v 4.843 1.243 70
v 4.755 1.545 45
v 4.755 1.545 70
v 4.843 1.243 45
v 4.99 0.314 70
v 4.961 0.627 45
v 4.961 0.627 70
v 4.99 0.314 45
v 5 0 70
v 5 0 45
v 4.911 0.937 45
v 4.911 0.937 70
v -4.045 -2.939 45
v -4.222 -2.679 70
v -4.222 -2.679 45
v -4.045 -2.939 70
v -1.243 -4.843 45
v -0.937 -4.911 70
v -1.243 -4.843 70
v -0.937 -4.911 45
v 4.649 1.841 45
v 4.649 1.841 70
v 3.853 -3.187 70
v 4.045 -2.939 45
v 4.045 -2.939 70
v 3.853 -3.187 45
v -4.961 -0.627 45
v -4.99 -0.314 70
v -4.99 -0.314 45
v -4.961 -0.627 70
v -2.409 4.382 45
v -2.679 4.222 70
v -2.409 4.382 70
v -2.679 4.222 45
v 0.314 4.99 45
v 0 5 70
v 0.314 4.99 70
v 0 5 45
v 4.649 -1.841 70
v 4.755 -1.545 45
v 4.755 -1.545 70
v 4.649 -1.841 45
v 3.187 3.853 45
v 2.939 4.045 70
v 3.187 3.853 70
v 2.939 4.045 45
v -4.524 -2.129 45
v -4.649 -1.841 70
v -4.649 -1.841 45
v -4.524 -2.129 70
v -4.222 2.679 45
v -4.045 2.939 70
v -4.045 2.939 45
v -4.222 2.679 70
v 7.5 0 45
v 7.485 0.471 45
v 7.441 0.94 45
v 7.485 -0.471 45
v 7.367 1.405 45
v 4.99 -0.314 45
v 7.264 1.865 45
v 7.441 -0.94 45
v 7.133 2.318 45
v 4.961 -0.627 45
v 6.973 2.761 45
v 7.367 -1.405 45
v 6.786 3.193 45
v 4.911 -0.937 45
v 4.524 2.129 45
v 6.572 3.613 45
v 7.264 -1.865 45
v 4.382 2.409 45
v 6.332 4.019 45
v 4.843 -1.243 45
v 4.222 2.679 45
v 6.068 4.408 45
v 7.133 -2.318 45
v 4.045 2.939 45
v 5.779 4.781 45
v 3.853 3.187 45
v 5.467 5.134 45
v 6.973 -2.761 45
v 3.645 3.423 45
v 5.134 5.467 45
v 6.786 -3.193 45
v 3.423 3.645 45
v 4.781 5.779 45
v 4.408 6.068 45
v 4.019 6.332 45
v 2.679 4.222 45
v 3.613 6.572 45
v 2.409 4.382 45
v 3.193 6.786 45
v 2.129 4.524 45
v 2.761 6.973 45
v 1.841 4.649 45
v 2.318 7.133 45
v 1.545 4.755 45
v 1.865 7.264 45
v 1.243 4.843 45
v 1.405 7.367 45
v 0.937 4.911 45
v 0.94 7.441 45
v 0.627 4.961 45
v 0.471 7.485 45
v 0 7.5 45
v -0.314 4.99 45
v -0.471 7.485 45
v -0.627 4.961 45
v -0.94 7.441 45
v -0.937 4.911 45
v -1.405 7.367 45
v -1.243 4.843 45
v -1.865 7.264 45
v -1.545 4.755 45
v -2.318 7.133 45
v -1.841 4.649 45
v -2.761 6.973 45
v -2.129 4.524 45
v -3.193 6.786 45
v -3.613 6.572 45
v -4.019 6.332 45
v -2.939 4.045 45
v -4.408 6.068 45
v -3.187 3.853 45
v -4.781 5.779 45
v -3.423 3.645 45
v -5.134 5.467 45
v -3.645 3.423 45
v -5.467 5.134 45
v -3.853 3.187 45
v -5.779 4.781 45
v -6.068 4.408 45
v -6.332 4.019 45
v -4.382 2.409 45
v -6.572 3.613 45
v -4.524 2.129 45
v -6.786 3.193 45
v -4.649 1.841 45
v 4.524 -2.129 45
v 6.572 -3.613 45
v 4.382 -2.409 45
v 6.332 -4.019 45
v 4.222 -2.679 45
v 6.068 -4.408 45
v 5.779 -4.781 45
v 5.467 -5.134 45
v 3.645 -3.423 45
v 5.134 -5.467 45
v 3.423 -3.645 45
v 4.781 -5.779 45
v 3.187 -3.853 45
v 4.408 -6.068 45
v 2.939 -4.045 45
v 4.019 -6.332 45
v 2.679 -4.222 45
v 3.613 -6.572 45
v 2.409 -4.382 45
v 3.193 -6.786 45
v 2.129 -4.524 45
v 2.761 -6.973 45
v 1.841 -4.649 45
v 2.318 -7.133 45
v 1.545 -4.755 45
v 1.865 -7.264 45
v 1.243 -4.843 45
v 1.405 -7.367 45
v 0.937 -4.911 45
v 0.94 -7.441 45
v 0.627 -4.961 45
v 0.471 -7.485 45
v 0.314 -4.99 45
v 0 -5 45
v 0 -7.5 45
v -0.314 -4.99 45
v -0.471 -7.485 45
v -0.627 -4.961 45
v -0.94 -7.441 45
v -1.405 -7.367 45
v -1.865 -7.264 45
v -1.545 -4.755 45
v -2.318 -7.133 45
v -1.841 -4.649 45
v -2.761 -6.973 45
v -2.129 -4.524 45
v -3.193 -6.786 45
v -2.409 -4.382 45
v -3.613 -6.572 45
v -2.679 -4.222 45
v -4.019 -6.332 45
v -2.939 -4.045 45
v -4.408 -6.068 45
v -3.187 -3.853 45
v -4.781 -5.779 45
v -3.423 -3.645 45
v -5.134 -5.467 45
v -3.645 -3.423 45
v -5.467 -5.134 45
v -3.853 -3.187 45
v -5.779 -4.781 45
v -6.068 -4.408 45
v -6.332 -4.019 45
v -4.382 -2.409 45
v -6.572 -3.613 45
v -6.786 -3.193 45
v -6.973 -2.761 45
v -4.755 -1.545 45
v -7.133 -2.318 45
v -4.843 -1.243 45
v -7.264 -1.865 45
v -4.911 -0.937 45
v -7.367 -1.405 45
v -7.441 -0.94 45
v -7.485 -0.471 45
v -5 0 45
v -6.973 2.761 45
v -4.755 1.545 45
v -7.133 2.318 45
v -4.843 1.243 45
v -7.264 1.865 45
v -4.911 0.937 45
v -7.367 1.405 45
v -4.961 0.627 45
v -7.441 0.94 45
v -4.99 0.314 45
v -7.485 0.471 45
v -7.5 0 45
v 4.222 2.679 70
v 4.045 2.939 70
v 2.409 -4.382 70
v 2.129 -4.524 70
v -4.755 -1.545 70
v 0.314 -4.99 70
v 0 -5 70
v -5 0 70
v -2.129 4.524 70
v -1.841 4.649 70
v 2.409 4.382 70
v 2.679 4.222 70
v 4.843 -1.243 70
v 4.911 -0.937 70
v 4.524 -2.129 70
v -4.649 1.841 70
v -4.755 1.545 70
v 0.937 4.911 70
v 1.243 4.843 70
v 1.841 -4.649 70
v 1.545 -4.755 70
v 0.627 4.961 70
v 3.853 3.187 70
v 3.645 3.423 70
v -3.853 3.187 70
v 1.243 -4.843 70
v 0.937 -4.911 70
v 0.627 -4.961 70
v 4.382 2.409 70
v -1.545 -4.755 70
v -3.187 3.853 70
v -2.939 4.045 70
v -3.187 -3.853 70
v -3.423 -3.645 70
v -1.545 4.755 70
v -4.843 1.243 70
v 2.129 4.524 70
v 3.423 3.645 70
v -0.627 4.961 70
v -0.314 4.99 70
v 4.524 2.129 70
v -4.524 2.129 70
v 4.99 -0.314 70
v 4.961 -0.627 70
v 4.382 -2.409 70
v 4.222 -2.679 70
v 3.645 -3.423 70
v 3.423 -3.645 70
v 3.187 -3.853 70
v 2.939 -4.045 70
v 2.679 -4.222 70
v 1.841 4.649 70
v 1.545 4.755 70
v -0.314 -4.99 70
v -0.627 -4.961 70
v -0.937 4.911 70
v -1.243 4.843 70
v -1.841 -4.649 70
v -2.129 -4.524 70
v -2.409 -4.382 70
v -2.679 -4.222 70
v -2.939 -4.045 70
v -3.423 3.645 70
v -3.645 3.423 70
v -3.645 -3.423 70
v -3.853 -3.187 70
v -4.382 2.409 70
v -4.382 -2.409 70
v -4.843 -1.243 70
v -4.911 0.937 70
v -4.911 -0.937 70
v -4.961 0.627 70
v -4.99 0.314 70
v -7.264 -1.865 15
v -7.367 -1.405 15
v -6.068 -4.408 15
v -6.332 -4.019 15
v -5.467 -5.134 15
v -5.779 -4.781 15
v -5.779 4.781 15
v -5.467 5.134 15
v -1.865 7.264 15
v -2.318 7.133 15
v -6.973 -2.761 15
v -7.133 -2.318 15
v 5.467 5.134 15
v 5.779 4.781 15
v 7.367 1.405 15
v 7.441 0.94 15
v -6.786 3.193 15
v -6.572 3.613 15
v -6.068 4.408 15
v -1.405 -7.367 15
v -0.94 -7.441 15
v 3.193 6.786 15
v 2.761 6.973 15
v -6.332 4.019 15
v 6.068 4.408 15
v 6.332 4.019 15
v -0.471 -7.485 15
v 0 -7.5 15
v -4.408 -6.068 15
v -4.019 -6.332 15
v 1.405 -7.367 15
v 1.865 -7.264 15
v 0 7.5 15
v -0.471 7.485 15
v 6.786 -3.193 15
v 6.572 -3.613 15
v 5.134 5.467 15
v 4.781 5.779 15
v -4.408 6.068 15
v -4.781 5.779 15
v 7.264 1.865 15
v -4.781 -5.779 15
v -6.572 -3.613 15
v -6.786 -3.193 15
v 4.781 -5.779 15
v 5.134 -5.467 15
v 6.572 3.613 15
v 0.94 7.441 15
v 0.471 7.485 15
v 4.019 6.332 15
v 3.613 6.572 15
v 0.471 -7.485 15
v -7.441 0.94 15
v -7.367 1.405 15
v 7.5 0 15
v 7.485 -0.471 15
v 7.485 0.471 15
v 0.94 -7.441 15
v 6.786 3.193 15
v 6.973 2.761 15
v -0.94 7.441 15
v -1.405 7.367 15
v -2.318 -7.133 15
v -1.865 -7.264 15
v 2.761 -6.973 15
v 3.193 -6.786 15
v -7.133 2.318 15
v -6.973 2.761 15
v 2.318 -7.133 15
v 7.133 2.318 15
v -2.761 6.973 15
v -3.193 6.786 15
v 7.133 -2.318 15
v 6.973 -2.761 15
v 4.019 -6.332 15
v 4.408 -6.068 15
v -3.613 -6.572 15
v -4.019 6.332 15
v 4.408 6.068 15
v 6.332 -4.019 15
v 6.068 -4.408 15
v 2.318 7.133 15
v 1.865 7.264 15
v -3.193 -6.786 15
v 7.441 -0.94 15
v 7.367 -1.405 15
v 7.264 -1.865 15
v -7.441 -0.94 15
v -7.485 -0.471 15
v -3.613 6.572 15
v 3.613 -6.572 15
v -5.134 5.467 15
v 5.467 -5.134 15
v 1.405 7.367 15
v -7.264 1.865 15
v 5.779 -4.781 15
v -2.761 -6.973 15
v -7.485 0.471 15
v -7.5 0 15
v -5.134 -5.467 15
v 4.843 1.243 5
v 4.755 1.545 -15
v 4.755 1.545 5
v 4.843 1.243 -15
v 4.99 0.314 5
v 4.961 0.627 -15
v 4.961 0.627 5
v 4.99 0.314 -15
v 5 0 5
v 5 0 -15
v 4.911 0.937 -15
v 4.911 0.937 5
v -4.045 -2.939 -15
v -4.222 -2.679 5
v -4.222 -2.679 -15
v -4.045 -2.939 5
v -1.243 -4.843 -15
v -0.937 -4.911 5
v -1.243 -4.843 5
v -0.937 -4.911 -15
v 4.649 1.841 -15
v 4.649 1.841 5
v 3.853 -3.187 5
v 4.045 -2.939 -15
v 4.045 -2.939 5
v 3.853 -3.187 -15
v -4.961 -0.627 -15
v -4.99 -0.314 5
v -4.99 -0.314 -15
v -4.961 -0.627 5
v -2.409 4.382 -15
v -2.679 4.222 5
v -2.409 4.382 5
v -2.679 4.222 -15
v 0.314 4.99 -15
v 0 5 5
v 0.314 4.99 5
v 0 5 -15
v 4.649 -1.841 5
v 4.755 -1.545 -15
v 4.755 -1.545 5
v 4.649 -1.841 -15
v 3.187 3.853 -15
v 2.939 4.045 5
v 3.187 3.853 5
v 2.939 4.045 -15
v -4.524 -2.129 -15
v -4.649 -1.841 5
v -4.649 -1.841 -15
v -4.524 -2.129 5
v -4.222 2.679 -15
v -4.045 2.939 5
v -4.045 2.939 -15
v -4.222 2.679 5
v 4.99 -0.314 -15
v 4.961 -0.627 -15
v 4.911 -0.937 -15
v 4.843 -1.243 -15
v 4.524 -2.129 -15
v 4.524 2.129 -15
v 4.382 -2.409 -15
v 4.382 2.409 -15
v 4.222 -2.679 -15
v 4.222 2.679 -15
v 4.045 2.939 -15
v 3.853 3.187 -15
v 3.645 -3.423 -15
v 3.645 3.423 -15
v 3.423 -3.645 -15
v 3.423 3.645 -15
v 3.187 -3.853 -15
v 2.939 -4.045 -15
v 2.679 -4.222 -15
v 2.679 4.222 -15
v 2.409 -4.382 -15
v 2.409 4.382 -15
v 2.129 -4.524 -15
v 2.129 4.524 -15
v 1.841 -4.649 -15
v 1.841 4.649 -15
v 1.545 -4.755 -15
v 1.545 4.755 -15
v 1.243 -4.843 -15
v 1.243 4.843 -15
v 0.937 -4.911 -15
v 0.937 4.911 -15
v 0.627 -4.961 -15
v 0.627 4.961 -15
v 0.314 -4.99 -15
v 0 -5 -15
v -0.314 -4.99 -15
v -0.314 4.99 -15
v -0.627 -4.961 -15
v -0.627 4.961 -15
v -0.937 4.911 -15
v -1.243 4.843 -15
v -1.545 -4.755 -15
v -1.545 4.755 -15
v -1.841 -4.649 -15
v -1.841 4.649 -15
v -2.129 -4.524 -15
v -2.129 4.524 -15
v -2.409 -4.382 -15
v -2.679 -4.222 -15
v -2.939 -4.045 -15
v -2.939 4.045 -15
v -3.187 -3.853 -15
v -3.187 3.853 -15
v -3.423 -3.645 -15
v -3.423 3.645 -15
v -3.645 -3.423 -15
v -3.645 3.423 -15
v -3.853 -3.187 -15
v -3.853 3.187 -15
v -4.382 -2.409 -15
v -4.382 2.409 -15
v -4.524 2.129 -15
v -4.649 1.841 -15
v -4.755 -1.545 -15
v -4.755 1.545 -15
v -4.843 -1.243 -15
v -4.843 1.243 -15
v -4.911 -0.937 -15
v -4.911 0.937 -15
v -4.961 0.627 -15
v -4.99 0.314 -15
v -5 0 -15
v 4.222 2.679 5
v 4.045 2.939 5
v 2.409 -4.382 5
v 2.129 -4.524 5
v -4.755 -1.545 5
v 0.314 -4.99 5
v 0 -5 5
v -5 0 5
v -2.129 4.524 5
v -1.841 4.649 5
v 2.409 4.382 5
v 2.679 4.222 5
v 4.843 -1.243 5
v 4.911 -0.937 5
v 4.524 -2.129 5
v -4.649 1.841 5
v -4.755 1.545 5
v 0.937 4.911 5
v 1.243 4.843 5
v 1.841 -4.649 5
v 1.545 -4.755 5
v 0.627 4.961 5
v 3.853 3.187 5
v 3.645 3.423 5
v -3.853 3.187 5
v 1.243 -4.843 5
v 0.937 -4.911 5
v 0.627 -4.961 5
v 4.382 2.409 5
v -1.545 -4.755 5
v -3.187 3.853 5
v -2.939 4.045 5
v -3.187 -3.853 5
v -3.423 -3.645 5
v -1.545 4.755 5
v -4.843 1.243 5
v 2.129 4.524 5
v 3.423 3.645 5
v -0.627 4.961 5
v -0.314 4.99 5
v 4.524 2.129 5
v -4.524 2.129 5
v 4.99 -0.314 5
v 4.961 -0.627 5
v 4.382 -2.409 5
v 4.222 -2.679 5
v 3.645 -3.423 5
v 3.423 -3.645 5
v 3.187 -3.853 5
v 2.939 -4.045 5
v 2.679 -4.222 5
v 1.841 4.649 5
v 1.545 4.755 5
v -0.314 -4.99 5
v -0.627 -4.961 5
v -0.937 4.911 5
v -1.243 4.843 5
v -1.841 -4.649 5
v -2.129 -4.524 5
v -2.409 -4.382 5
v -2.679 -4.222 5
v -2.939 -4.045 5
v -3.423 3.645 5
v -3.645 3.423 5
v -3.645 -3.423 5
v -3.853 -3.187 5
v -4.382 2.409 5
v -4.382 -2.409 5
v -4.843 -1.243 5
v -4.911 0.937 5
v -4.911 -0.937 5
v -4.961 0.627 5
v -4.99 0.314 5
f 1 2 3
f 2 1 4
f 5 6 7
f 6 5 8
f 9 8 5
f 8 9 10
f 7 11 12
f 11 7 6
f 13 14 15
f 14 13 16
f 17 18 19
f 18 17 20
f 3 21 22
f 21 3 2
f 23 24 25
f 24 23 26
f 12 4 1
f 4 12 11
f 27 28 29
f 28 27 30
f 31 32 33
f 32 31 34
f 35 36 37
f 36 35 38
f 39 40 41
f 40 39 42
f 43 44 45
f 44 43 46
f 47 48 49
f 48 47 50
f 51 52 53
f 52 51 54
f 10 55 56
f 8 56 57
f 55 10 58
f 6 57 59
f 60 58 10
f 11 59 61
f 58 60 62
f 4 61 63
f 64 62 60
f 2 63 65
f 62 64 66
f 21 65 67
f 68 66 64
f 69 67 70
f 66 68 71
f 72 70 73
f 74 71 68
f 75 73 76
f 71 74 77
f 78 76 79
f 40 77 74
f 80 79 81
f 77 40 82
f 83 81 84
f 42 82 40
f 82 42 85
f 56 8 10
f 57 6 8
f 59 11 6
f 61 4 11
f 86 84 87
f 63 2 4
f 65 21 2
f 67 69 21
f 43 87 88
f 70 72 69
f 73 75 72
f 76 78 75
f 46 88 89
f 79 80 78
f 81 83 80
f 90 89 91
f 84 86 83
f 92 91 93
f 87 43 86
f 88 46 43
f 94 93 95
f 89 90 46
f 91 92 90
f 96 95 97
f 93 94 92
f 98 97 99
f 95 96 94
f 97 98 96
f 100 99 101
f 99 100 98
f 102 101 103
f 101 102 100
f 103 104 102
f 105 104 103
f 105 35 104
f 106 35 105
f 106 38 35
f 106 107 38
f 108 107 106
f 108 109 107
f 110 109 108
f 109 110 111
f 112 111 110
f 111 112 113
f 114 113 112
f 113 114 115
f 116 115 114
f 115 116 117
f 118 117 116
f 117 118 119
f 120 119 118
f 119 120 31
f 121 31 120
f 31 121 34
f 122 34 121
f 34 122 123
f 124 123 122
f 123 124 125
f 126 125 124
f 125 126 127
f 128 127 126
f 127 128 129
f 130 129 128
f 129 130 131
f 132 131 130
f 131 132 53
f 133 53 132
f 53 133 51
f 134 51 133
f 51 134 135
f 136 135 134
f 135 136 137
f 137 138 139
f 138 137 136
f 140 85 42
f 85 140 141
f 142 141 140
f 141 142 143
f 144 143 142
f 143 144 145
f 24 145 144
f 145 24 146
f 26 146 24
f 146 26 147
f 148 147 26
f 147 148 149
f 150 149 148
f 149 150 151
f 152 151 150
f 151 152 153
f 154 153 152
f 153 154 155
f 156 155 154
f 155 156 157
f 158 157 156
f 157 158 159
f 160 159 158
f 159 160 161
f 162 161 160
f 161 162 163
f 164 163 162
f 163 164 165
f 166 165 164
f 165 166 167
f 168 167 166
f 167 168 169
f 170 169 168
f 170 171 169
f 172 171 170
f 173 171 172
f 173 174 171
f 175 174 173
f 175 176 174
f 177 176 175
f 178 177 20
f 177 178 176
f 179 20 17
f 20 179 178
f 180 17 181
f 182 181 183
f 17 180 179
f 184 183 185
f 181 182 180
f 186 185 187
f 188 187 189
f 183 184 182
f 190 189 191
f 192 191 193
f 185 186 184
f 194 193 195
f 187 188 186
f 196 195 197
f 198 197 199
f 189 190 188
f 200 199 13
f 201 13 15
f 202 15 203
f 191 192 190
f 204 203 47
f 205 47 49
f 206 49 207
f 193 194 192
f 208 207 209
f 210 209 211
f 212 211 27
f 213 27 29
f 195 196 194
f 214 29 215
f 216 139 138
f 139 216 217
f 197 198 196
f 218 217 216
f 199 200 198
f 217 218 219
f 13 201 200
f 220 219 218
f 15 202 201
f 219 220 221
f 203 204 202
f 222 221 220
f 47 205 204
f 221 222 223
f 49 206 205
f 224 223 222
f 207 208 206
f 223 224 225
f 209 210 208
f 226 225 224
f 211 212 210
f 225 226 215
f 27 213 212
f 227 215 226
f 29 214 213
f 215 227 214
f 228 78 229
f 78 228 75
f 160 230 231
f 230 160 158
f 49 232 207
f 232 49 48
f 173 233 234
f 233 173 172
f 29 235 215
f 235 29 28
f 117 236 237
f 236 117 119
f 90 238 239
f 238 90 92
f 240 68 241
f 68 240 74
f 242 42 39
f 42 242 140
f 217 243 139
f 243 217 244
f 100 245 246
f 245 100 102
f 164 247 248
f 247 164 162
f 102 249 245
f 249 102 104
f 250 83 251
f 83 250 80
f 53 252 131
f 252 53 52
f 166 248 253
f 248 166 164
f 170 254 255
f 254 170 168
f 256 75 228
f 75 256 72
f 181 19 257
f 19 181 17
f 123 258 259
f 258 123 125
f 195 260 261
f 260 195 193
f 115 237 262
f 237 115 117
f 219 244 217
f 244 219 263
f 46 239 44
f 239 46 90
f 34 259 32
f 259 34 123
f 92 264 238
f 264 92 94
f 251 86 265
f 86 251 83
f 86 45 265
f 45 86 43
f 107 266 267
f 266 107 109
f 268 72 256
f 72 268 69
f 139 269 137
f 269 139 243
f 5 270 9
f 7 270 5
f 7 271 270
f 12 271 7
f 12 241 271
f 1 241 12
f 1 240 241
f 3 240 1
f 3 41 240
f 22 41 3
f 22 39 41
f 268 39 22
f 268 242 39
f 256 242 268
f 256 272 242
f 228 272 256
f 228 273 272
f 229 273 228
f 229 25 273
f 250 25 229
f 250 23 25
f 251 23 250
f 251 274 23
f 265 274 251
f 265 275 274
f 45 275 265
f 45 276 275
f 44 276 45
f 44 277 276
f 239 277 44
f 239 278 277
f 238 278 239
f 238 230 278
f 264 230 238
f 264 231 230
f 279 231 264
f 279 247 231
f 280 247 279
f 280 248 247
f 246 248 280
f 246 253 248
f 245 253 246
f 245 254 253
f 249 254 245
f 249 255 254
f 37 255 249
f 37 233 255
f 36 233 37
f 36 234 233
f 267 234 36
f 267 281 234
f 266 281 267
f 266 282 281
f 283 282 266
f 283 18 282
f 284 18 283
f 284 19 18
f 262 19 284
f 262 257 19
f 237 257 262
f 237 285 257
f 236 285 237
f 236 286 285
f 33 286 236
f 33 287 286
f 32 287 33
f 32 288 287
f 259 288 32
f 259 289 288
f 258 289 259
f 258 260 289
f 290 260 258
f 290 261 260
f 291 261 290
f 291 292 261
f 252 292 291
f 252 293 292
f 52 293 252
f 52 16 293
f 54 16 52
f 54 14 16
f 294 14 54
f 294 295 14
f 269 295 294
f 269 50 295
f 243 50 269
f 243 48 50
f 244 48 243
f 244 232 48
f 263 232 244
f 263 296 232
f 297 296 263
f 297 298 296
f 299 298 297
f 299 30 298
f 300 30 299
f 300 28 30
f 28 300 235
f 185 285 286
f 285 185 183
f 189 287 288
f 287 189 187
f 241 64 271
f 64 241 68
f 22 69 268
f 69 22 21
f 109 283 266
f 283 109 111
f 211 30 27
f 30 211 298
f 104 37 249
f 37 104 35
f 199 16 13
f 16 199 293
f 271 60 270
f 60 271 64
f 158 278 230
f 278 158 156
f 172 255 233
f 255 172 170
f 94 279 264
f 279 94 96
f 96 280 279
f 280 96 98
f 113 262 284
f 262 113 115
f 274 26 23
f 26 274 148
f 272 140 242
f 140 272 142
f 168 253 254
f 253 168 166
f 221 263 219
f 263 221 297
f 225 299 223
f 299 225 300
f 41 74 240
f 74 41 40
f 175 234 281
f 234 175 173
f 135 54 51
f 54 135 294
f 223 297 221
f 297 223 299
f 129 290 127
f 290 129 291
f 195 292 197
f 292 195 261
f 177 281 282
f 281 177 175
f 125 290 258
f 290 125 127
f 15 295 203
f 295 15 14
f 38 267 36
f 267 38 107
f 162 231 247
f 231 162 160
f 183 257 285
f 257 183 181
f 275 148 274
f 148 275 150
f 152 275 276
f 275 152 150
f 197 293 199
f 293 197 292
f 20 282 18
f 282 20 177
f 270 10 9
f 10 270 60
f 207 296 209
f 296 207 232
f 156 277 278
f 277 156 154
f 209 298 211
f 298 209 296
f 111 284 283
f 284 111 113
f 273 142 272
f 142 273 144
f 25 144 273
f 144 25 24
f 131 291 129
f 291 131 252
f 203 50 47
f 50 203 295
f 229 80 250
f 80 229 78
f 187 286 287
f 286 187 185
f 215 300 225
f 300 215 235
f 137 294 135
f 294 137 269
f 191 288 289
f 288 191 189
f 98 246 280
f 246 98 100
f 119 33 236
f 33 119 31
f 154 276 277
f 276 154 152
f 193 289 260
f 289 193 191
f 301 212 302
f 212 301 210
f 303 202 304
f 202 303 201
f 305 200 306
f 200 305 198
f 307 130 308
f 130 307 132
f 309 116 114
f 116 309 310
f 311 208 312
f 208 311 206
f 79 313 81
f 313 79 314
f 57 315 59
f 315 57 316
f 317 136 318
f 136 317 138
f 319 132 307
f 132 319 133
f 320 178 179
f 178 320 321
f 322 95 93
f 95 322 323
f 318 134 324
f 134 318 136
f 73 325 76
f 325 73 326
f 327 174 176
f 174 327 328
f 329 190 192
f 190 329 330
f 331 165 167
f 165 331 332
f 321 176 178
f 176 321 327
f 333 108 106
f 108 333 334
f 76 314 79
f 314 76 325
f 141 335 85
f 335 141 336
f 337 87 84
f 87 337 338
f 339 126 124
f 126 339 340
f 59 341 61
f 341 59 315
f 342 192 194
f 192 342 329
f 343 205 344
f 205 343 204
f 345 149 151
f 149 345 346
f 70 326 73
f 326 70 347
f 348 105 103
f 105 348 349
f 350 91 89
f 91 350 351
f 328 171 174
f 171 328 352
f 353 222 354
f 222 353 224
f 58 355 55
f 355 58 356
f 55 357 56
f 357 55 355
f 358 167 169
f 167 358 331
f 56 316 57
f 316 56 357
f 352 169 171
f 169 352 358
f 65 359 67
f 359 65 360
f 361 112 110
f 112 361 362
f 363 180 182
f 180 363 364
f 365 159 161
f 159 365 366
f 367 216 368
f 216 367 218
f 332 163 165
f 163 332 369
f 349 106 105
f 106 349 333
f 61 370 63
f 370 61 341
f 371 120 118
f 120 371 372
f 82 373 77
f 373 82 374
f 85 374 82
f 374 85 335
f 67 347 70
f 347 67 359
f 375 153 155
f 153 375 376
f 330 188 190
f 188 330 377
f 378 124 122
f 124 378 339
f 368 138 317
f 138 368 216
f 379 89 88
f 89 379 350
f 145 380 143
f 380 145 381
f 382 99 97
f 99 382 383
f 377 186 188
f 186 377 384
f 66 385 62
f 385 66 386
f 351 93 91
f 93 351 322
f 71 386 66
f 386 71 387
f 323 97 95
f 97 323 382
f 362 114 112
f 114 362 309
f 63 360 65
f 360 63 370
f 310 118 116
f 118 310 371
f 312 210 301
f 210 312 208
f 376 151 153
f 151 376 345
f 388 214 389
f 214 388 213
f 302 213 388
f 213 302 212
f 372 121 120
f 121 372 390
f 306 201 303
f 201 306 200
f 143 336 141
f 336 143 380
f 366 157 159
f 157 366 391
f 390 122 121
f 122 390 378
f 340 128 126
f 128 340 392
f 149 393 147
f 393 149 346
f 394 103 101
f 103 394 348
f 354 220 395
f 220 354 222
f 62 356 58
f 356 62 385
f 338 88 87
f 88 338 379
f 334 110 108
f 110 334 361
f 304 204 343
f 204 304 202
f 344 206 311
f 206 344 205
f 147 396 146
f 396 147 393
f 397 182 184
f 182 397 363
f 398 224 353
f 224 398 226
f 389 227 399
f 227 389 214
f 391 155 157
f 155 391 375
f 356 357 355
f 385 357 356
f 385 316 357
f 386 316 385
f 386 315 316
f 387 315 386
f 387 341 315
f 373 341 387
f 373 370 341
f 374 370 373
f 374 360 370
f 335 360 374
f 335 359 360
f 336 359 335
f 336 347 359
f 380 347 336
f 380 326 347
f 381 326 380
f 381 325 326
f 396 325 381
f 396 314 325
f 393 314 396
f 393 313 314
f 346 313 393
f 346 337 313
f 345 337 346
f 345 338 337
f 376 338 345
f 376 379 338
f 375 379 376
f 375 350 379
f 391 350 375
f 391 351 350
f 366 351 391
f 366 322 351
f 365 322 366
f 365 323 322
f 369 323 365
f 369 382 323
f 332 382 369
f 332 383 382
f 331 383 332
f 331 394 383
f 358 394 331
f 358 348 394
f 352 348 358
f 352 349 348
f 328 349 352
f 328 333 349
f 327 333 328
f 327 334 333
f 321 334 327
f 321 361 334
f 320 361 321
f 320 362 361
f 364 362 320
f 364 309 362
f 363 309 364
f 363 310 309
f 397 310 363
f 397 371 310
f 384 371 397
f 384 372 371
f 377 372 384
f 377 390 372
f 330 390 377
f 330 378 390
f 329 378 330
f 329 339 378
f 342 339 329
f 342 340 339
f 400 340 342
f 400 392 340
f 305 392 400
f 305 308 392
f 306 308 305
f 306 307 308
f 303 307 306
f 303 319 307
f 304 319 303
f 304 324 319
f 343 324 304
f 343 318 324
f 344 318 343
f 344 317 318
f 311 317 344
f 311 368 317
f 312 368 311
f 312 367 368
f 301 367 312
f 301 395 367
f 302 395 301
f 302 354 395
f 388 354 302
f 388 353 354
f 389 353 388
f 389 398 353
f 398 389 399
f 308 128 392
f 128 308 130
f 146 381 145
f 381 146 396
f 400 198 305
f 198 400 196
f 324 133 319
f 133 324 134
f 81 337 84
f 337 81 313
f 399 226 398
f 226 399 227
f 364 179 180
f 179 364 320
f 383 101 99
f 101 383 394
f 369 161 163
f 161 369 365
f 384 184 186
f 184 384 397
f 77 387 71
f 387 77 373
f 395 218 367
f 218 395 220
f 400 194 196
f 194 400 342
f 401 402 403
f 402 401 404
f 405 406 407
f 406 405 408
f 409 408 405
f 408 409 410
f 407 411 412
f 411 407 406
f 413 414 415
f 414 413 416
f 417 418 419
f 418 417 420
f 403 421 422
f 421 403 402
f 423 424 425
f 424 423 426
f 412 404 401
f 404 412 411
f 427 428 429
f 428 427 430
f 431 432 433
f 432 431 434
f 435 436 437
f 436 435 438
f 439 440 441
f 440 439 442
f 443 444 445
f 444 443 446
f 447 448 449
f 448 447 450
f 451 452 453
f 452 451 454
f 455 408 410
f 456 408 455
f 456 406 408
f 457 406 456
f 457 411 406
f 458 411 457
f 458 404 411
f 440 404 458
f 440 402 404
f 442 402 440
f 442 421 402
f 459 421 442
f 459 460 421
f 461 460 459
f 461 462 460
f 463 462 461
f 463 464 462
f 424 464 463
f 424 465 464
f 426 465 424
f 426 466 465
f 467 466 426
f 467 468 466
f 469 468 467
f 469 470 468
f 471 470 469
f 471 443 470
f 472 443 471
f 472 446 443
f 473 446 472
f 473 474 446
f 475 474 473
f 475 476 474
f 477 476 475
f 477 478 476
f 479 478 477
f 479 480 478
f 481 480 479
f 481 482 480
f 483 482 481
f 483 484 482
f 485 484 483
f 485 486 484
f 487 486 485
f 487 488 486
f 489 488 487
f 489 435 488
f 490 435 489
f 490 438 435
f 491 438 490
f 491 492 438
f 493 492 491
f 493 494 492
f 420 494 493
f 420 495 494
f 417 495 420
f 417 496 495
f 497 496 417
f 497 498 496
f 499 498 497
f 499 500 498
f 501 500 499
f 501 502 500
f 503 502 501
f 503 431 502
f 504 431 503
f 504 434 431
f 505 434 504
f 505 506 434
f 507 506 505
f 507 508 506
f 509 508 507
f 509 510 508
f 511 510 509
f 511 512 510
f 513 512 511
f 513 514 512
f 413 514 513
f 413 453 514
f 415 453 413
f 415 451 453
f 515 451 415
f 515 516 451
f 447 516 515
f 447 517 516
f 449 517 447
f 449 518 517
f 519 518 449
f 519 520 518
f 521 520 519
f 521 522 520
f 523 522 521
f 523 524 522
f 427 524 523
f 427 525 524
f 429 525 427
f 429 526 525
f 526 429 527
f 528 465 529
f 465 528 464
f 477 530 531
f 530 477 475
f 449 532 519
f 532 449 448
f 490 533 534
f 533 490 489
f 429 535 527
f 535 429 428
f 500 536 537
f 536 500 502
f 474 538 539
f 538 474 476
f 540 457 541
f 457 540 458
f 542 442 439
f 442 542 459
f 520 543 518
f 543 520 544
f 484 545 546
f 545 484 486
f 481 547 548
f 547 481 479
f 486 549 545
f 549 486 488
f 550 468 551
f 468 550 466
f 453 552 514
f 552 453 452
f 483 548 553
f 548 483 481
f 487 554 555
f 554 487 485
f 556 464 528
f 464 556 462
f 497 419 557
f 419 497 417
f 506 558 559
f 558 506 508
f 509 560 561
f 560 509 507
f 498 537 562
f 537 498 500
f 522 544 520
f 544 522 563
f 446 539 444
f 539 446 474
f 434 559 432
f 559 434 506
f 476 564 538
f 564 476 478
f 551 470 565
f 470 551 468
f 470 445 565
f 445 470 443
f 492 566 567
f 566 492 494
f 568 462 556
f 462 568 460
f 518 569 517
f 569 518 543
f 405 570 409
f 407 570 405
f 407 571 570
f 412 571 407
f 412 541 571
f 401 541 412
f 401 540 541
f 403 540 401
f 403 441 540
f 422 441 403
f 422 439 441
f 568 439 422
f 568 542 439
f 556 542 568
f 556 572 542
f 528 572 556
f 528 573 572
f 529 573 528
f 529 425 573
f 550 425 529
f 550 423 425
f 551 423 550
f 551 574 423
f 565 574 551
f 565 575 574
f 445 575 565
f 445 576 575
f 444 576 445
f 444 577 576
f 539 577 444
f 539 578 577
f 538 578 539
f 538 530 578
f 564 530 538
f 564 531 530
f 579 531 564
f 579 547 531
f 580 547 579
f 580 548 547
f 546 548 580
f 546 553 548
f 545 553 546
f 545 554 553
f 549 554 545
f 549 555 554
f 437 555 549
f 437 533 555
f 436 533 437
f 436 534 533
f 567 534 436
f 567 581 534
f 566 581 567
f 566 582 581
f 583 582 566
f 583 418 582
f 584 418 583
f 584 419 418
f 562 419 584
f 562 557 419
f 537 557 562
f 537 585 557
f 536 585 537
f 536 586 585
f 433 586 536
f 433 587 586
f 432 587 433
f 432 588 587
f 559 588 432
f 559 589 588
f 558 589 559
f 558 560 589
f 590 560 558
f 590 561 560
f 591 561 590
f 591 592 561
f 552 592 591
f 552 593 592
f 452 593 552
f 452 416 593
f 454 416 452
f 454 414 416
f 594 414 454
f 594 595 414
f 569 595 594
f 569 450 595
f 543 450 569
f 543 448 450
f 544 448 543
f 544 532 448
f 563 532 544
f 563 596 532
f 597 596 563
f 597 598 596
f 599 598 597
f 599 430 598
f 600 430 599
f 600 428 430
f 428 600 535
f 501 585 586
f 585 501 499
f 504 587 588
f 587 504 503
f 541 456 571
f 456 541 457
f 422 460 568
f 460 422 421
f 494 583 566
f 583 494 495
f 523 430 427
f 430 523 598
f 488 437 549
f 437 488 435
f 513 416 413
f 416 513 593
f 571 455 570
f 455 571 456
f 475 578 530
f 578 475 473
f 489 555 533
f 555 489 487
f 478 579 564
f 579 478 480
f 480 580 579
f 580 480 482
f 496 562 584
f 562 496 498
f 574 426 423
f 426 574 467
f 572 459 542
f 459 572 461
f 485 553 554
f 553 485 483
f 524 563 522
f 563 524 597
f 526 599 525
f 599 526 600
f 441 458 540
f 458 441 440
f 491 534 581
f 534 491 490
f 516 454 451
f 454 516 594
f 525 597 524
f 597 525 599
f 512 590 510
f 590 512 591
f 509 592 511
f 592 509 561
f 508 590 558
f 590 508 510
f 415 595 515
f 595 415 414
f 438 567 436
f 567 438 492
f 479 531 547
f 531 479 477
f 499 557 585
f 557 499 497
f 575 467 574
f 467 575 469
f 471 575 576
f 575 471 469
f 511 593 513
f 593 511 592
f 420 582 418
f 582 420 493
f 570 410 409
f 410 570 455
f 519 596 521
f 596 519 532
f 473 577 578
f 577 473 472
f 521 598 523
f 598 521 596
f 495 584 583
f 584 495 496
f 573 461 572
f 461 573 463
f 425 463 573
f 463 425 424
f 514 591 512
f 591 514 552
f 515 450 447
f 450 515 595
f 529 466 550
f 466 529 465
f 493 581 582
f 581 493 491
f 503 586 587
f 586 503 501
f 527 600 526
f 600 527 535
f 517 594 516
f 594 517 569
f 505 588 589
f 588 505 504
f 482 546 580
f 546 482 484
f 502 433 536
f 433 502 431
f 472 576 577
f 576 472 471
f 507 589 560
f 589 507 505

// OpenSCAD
// Parameters for the components
module input_craft() {
    cylinder(h = 25, d = 10, $fn = 100); // Height: 25, Diameter: 10
}

module central_craft() {
    cylinder(h = 30, d = 15, $fn = 100); // Height: 30, Diameter: 15
}

module output_craft() {
    cylinder(h = 20, d = 10, $fn = 100); // Height: 20, Diameter: 10
}

// Assembly of the flexible coupling
module flexible_coupling() {
    translate([0, 0, 45]) input_craft(); // Position input_craft at the top
    translate([0, 0, 15]) central_craft(); // Position central_craft below input_craft
    translate([0, 0, -15]) output_craft(); // Position output_craft at the bottom
}

// Render the model
flexible_coupling();
